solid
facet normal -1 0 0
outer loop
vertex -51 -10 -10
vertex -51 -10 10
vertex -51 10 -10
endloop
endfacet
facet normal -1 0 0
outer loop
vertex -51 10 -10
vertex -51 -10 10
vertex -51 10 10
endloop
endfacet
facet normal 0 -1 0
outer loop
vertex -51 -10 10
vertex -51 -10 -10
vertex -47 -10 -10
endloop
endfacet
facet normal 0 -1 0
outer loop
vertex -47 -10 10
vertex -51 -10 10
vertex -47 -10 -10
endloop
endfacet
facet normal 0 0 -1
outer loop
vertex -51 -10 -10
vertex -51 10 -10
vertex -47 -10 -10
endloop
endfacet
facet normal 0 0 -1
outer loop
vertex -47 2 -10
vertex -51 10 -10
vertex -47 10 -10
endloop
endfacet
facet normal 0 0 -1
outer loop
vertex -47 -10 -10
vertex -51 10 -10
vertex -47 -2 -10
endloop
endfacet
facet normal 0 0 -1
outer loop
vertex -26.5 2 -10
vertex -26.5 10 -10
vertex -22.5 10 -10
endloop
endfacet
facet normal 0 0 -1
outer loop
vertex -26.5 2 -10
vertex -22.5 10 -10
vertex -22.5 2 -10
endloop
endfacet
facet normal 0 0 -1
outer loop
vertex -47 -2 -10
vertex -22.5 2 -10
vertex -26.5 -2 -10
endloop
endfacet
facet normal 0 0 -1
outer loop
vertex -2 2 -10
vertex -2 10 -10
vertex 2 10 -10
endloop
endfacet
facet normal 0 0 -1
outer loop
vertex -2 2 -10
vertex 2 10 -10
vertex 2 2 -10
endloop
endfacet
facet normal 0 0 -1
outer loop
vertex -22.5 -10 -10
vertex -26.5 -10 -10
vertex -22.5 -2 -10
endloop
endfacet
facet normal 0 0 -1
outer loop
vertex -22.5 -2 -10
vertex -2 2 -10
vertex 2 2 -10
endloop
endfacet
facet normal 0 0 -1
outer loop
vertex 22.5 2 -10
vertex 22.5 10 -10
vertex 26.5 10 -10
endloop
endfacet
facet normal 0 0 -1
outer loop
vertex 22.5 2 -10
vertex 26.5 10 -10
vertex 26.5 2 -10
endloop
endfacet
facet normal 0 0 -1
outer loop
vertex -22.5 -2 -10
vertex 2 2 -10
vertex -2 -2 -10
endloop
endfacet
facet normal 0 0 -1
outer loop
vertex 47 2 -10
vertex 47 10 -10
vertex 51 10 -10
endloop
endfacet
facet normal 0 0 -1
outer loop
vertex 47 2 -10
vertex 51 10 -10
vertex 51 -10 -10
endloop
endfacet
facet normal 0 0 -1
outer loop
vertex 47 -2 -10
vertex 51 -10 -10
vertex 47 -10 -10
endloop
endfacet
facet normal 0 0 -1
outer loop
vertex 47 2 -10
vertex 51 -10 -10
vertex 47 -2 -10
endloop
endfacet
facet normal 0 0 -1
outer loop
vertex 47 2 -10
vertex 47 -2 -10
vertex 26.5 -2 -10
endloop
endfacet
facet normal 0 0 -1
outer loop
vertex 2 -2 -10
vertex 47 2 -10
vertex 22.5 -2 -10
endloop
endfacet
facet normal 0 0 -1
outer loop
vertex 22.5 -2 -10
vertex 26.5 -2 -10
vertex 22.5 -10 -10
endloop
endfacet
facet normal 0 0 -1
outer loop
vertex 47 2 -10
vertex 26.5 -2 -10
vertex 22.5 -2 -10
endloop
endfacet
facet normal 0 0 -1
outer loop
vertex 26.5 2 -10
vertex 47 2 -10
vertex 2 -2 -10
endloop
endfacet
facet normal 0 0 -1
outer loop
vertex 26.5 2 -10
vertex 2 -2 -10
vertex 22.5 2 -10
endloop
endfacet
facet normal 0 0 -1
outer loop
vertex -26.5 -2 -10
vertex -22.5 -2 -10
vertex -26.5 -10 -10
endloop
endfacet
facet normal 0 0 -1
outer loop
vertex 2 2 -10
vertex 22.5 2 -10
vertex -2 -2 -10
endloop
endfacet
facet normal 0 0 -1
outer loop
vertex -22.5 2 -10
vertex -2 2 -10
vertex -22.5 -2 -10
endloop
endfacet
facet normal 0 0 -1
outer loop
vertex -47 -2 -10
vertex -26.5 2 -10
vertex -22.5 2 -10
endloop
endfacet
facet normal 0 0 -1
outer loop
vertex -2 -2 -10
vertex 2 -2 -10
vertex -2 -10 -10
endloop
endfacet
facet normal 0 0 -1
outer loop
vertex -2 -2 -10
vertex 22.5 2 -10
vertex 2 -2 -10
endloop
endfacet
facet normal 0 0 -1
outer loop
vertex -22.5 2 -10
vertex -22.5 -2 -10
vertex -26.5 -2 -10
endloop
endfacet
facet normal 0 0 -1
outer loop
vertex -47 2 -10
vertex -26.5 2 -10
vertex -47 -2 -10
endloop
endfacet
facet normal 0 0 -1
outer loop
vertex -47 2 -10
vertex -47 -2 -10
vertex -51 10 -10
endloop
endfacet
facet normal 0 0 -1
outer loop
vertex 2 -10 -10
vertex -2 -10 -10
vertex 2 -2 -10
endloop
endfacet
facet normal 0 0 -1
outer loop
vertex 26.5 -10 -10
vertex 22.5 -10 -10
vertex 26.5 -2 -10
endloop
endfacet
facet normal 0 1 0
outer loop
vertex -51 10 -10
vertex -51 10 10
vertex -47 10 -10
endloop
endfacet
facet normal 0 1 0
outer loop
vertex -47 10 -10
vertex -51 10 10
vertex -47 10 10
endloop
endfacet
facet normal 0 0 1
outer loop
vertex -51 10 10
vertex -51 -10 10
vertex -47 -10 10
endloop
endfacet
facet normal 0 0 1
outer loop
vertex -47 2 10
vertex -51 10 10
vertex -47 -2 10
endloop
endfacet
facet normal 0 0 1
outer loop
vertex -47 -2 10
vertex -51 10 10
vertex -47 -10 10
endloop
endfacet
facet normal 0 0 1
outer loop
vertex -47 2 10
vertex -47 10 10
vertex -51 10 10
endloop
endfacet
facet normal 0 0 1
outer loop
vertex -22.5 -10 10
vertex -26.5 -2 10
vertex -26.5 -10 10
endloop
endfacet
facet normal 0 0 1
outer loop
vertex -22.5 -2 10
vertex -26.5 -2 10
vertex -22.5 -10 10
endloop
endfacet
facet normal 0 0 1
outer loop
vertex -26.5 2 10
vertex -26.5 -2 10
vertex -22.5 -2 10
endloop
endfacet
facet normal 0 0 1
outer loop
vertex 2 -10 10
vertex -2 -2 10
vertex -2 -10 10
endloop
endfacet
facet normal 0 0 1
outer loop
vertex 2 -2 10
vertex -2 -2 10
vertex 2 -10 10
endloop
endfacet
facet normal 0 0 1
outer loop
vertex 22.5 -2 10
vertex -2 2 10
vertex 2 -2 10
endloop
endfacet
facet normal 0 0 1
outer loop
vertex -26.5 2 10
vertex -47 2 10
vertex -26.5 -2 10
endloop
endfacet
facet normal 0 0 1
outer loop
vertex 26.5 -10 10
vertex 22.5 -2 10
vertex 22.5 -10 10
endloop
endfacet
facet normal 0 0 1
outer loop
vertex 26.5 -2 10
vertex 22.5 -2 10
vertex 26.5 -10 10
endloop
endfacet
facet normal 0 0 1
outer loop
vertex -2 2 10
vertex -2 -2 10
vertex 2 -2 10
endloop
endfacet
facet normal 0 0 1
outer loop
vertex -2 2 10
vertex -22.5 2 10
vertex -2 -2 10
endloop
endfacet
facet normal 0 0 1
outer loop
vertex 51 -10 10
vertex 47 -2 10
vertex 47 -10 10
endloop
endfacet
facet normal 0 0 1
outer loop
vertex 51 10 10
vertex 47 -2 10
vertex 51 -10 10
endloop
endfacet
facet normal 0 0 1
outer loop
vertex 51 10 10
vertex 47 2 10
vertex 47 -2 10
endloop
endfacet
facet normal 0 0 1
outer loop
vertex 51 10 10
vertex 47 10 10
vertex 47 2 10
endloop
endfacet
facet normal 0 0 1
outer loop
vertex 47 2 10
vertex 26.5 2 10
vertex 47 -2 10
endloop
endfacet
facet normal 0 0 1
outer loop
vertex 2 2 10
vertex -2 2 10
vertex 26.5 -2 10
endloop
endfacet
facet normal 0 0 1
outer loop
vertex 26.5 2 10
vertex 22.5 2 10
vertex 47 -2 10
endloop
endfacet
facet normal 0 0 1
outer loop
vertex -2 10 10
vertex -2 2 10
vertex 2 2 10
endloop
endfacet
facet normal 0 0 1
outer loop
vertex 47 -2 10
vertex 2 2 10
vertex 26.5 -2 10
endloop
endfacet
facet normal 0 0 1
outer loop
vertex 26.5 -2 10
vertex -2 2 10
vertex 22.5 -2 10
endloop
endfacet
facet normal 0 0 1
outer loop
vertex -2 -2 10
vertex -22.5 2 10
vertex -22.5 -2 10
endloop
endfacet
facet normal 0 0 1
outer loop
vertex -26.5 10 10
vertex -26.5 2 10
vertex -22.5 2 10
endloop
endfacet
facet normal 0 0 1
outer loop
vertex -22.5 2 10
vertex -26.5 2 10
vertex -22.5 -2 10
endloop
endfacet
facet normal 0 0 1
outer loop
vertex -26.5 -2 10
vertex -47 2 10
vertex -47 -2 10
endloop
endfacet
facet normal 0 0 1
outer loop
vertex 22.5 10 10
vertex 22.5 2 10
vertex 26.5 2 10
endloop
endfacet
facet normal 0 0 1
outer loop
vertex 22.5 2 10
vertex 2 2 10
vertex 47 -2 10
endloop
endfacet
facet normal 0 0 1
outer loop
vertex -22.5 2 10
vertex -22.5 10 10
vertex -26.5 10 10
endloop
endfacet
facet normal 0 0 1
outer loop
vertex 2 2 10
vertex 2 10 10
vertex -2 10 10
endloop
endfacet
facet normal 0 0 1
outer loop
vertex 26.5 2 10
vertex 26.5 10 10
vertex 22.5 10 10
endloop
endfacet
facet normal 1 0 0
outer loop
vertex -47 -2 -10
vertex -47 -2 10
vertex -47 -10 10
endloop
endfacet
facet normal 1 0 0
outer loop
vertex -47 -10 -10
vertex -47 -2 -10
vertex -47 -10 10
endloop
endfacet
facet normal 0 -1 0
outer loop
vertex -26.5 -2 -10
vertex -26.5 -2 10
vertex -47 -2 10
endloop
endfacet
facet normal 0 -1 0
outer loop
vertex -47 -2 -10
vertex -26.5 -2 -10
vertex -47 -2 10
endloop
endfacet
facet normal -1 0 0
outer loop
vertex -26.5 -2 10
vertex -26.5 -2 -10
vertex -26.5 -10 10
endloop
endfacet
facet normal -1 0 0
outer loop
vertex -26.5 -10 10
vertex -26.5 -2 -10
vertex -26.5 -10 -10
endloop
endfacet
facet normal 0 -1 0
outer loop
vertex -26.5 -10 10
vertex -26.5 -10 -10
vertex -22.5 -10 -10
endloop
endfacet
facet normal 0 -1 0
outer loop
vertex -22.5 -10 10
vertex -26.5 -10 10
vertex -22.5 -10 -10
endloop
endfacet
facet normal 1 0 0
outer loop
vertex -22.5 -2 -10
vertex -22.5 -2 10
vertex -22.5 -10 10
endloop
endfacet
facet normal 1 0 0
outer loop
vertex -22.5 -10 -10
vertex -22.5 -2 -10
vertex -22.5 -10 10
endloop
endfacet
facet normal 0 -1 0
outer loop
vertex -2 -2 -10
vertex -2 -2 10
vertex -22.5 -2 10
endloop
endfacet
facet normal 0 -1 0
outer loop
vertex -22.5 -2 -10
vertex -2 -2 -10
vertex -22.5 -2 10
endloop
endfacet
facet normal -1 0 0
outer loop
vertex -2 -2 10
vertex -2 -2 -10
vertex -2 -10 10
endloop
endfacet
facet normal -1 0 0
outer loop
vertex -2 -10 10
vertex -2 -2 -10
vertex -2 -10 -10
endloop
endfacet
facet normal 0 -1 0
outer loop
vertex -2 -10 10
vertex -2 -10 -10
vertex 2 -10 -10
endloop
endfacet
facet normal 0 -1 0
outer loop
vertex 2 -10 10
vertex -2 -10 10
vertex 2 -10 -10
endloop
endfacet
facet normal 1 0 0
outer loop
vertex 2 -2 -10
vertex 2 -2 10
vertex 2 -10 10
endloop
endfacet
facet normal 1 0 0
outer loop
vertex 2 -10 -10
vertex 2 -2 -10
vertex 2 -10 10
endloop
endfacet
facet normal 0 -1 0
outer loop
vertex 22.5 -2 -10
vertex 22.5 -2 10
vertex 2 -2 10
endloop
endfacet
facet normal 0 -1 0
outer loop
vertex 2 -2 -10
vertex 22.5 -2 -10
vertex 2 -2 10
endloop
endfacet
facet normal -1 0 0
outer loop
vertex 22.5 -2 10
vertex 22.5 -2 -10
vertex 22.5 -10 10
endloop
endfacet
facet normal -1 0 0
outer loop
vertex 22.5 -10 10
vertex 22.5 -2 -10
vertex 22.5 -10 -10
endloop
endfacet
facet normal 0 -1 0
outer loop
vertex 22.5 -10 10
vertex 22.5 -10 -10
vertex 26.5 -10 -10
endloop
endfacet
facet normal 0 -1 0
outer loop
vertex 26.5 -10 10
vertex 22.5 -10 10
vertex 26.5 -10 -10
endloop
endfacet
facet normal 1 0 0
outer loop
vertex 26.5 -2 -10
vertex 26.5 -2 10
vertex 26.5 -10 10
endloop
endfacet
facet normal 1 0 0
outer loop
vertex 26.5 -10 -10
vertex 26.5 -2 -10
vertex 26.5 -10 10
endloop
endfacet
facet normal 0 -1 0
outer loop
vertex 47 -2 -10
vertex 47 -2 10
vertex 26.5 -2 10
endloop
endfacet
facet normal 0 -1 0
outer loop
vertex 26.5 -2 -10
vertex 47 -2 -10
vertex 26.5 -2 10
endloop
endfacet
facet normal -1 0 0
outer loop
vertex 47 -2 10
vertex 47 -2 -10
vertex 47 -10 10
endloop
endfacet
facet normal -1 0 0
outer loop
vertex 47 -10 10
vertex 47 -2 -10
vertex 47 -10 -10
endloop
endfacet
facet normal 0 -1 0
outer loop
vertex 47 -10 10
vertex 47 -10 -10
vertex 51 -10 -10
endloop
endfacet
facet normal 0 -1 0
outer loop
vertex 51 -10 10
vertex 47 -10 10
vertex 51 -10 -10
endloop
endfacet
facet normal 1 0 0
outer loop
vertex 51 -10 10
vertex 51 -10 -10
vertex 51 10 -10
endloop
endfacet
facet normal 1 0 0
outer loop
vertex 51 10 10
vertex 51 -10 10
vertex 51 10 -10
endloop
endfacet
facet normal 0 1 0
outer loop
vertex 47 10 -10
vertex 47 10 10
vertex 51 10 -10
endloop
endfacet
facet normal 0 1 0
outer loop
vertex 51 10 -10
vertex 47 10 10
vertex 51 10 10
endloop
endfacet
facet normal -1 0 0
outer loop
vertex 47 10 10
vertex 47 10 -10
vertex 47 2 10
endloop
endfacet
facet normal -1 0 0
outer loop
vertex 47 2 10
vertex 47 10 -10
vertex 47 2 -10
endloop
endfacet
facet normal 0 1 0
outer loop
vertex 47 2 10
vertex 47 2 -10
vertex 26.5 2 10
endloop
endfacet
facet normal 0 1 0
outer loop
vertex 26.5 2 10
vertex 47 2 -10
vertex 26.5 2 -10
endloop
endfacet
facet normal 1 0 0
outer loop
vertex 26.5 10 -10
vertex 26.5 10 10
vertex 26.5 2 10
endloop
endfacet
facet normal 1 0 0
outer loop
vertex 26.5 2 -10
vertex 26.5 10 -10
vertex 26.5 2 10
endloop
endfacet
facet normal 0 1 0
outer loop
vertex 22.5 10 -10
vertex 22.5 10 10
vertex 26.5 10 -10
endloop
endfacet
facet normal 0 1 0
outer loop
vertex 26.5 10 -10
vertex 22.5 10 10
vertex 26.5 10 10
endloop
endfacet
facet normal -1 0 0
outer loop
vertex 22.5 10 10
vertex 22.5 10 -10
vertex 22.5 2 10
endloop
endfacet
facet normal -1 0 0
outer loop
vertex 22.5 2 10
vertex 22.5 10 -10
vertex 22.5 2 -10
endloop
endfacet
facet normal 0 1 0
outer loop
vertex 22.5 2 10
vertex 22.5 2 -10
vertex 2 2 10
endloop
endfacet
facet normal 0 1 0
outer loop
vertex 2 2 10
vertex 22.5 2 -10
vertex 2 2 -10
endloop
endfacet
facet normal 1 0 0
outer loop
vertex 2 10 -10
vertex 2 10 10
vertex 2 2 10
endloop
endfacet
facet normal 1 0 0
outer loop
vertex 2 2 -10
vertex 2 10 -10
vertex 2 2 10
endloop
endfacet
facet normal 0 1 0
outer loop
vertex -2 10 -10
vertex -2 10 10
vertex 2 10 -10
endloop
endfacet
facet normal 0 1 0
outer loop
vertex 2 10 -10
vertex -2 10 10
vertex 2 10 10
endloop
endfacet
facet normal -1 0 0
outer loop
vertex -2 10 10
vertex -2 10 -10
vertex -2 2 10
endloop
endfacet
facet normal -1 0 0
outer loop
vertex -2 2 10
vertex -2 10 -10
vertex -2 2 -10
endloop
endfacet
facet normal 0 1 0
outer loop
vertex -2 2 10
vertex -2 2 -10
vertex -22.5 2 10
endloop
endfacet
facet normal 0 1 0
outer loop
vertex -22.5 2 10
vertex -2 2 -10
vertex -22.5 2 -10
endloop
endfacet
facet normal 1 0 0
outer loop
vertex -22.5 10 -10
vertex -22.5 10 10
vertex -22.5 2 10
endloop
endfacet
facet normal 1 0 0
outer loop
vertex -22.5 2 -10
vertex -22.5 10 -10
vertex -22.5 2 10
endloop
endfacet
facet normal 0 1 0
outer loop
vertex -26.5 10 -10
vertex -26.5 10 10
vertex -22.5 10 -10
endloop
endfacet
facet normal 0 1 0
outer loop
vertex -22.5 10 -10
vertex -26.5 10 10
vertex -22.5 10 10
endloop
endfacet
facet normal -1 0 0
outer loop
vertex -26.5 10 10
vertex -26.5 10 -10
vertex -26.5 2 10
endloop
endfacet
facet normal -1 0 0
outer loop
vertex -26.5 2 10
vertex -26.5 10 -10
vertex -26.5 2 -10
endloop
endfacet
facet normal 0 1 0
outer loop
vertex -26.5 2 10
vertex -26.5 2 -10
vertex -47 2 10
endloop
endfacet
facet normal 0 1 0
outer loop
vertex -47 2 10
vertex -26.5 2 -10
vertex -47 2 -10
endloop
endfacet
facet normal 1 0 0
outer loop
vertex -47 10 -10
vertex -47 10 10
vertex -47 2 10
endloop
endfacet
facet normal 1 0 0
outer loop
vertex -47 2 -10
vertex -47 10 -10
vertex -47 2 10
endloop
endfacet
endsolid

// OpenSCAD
n = 4;
xthickness = 4;
ythickness = 4;
wcell = 20.5;

// The side view is a 20x20 square
dcell = (20 - ythickness) / 2;
h = 20;

w = (n * wcell) + ((n + 1) * xthickness);
d = (2 * dcell) + ythickness;

translate([-w/2, -d/2, -h/2]) {
	difference() {

		cube([w, d, h]);

		union() {

			for (iy = [0, 1]) {
				for (ix = [0 : (n - 1)]) {
					translate([
							(ix * wcell)+ ((ix + 1) * xthickness),
							iy * (dcell + ythickness),
							0])
					{
						cube([wcell, dcell, h]);
					}
				}
			}
		};
	}
}
